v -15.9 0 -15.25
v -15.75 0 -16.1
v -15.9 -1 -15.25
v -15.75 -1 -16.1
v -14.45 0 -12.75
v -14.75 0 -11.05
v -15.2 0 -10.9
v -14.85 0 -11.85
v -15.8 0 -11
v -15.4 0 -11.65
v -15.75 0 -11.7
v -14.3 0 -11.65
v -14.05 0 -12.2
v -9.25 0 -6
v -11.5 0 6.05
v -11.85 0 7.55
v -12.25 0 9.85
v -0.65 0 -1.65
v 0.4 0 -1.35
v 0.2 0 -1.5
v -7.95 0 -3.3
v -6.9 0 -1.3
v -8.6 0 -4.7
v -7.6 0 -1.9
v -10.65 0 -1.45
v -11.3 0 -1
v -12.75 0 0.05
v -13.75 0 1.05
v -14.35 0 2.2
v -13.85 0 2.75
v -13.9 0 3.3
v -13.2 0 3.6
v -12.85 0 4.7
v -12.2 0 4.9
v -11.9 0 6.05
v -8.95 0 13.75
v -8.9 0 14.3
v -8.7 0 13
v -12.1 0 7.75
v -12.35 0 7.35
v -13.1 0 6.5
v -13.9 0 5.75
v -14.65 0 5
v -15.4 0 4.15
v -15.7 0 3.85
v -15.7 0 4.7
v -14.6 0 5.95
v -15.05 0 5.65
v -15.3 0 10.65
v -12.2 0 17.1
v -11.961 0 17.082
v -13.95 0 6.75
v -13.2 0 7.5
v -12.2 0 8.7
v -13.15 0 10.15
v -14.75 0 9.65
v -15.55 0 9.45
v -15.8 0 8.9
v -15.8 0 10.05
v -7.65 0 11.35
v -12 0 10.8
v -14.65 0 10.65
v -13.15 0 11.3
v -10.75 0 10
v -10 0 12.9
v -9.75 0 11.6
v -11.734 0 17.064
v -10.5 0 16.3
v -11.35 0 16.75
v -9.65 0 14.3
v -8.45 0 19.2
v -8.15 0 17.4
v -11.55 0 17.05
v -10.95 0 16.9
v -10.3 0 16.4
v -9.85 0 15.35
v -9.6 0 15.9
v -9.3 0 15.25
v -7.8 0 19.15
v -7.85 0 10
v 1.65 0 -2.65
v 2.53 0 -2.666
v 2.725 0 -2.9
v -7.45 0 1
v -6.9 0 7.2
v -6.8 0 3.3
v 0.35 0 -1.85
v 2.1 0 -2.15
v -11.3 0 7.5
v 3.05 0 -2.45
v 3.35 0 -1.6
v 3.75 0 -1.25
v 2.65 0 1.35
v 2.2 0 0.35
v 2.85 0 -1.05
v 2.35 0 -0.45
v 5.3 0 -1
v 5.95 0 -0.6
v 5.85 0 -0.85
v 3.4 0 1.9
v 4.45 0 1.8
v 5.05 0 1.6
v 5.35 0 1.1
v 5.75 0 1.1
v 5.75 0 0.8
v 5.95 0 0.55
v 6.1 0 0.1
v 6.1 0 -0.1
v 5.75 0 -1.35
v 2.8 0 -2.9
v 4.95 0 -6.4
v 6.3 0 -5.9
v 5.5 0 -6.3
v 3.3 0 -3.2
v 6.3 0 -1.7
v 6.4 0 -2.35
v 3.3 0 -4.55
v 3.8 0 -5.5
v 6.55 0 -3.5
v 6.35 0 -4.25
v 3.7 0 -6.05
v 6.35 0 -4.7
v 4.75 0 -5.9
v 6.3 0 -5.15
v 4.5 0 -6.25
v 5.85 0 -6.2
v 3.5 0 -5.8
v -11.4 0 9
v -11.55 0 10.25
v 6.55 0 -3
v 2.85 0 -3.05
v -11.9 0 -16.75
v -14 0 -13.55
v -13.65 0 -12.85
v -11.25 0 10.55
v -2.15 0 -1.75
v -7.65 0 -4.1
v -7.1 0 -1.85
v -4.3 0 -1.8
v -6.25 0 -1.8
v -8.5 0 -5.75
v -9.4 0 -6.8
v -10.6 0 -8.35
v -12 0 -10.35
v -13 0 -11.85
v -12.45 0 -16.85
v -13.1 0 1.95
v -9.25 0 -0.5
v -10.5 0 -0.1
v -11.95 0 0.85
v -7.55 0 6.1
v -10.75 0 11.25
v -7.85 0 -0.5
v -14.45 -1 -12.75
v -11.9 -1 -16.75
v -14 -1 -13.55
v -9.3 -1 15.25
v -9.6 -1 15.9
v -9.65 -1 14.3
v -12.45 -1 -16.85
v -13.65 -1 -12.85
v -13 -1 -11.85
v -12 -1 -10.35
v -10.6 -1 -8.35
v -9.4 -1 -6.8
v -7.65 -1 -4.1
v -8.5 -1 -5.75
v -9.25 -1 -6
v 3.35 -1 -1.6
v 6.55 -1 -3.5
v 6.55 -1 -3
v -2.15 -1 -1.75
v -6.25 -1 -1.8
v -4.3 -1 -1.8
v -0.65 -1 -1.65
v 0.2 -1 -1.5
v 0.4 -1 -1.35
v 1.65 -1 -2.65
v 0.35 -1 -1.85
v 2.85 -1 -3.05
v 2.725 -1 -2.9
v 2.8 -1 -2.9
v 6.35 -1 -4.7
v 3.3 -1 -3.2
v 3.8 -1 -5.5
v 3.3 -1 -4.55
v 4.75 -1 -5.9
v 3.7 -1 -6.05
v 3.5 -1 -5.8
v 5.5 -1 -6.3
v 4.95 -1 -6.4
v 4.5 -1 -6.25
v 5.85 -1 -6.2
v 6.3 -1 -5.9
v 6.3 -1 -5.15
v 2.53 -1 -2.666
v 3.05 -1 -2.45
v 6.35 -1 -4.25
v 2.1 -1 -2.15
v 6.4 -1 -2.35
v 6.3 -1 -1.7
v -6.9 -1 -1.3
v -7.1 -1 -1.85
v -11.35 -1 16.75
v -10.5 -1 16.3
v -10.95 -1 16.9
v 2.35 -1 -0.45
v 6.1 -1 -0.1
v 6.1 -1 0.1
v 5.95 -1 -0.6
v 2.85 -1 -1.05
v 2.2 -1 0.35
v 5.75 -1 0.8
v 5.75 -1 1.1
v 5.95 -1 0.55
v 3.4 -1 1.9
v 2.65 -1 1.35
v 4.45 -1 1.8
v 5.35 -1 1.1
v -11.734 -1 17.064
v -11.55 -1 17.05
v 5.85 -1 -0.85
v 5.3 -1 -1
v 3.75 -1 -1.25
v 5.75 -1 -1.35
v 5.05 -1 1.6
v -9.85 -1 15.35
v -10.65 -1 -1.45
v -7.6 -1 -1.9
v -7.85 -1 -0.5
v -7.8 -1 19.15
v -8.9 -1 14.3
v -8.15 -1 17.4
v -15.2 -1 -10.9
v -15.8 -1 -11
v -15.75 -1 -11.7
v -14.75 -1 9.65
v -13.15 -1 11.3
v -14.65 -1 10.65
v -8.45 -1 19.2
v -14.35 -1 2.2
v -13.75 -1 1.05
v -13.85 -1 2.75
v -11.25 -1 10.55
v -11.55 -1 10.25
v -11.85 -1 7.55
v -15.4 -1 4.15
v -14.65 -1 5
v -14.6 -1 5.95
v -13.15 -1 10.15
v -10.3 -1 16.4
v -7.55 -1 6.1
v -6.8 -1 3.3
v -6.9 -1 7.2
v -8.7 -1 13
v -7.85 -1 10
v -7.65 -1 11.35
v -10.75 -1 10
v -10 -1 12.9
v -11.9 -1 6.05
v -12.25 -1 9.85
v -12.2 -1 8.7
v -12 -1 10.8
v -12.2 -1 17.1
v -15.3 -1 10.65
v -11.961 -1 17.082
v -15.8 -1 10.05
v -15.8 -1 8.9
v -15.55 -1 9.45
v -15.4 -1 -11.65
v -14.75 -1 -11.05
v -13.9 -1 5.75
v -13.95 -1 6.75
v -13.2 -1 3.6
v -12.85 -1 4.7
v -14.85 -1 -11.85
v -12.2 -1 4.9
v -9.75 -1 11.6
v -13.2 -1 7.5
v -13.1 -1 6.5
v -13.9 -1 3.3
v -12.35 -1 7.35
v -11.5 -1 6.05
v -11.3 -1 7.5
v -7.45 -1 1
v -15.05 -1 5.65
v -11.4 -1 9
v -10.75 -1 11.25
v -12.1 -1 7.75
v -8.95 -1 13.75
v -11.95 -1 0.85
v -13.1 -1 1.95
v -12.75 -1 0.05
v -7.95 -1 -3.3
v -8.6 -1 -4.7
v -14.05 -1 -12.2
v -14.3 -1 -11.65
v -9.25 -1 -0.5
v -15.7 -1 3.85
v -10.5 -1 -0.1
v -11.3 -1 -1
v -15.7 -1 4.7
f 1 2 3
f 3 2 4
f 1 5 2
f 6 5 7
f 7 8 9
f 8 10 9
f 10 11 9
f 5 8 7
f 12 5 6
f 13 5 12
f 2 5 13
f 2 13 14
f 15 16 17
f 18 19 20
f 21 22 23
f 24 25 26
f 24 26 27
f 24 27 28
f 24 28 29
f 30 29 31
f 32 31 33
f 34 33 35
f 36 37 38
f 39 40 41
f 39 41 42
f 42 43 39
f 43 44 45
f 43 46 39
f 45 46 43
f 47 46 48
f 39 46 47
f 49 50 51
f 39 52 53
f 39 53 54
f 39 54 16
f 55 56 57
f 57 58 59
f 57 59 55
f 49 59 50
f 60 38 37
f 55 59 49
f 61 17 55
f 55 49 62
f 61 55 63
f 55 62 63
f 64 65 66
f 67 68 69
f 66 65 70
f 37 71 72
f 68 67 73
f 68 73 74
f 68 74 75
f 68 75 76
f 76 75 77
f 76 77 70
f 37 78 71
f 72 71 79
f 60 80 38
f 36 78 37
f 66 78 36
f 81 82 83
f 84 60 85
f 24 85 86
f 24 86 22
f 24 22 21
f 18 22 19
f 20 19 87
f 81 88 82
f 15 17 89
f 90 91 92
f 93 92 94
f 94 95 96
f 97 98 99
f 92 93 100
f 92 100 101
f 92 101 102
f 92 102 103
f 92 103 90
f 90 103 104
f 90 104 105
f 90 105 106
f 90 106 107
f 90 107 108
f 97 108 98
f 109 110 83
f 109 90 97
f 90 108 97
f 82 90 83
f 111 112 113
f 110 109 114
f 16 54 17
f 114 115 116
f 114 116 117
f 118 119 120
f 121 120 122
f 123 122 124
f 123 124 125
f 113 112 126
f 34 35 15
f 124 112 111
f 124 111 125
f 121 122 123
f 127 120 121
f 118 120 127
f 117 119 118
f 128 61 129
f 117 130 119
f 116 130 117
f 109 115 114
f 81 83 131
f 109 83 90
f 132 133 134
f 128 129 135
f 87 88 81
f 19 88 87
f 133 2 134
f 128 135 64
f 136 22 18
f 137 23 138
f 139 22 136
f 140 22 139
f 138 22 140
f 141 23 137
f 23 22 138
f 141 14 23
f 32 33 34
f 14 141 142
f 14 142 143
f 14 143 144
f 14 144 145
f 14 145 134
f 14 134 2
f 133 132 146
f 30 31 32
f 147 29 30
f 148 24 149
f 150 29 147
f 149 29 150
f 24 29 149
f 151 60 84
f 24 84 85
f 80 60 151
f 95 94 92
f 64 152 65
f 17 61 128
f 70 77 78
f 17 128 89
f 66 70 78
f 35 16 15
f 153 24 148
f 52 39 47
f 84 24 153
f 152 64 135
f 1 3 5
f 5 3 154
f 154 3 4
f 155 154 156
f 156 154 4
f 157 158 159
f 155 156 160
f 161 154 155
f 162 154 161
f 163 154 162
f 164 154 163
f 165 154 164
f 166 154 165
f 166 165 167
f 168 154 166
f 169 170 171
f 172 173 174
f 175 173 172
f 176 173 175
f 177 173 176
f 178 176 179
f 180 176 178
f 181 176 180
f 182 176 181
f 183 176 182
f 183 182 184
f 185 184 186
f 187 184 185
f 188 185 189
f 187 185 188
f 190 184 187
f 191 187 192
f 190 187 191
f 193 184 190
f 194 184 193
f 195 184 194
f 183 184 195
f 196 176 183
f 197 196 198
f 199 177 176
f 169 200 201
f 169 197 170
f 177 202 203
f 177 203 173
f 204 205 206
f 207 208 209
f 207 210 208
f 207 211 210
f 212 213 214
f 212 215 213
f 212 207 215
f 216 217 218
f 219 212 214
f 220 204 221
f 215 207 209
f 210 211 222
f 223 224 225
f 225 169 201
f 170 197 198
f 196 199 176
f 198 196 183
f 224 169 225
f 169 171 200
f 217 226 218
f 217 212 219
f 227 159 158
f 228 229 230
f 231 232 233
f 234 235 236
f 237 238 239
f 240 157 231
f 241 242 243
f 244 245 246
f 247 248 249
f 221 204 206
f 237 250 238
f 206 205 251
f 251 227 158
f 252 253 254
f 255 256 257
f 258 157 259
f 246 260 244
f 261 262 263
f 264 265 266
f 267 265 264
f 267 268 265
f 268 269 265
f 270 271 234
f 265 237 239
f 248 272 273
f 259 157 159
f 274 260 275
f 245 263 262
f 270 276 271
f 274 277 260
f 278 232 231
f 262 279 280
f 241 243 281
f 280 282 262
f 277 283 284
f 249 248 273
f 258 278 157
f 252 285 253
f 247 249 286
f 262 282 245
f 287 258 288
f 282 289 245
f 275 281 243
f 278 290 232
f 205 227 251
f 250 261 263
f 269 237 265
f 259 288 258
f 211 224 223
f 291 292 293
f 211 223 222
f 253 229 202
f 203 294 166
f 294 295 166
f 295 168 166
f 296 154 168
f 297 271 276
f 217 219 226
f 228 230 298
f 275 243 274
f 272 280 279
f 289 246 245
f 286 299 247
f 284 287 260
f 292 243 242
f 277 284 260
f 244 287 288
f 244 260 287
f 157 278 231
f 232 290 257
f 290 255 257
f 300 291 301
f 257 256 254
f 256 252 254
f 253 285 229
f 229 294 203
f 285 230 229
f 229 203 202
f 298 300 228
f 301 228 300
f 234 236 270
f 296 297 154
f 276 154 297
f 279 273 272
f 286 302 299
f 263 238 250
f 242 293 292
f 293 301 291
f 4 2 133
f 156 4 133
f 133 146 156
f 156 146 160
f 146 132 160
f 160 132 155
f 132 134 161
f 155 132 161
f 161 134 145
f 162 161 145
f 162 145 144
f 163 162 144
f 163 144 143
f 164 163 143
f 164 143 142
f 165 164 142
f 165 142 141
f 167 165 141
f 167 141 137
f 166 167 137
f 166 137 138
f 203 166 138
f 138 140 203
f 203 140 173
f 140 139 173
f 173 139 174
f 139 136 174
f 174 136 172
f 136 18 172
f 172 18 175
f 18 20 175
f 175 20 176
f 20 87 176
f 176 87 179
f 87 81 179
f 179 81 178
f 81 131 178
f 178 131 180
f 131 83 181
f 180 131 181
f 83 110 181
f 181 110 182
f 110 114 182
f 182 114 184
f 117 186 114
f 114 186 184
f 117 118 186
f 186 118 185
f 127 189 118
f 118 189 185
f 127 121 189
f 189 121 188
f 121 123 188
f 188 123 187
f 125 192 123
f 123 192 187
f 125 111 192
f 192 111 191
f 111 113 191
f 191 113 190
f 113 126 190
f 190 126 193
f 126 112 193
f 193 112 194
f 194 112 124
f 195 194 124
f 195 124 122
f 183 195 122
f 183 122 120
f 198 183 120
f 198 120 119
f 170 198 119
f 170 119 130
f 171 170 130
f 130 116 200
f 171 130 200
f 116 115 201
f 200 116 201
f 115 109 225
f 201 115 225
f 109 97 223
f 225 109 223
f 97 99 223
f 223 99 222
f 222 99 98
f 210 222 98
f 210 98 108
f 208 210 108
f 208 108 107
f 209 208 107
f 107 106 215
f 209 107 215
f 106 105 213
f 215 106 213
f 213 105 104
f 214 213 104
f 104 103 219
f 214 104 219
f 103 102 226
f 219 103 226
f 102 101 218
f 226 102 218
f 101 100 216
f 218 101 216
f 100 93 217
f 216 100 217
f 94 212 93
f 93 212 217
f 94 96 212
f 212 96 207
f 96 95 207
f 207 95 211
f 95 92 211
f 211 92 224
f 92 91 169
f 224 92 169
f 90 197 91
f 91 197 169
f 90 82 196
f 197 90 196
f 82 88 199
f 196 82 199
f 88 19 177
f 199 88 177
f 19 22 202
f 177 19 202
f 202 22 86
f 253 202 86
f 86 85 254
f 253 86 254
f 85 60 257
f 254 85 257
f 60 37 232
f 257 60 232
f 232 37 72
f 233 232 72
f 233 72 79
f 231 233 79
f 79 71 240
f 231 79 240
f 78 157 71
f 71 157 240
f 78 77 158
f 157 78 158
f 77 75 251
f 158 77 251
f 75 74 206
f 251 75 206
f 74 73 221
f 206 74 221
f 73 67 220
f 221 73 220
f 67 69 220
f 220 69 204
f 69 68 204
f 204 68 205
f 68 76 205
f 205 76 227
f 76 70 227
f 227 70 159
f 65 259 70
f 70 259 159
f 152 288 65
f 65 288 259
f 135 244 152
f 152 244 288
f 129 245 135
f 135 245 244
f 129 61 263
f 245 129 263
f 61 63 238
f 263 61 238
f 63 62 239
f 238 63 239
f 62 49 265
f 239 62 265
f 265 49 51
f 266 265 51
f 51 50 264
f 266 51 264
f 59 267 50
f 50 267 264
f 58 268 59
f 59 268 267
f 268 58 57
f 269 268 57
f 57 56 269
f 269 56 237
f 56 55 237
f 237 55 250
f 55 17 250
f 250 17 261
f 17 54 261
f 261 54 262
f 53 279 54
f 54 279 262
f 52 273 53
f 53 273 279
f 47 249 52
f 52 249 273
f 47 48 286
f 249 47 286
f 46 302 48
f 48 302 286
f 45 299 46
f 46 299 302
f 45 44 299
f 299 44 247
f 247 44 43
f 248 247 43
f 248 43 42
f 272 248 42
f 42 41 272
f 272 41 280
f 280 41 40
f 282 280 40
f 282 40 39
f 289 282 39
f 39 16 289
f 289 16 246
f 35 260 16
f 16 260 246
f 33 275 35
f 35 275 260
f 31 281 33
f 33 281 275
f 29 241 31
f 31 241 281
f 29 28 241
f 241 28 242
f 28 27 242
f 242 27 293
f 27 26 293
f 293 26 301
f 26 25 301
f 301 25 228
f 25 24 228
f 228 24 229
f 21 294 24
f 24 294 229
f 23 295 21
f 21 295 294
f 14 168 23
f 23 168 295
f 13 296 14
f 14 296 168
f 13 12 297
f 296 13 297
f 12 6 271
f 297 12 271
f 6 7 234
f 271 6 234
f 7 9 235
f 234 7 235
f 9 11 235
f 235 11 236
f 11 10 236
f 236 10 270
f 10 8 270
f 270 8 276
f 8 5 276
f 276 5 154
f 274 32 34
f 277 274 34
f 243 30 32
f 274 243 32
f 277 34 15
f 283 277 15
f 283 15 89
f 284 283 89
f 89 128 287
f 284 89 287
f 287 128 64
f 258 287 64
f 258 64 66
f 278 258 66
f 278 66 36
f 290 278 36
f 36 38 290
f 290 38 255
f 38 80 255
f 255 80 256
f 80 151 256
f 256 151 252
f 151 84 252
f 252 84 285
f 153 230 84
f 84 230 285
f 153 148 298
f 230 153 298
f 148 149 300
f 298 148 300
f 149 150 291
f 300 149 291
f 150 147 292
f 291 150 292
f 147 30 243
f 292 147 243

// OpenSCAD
// file: pageOne.scad
//start
module  pageOneLines() 
{ 
color  ([1,0.4,0.8]) 
{ 
            polygon(points = [
[-7.80,19.15]
,[-8.15,17.40]
,[-8.90,14.30]
,[-7.65,11.35]
,[-6.90,7.20]
,[-6.80,3.30]
,[-6.90,-1.30]
,[0.40,-1.35]
,[2.10,-2.15]
,[2.85,-3.05]
,[1.65,-2.65]
,[0.35,-1.85]
,[0.20,-1.50]
,[-0.65,-1.65]
,[-2.15,-1.75]
,[-4.30,-1.80]
,[-6.25,-1.80]
,[-7.10,-1.85]
,[-7.65,-4.10]
,[-8.50,-5.75]
,[-9.40,-6.80]
,[-10.60,-8.35]
,[-12.00,-10.35]
,[-13.00,-11.85]
,[-13.65,-12.85]
,[-11.90,-16.75]
,[-12.45,-16.85]
,[-14.00,-13.55]
,[-15.75,-16.10]
,[-15.90,-15.25]
,[-14.45,-12.75]
,[-14.85,-11.85]
,[-15.40,-11.65]
,[-15.75,-11.70]
,[-15.80,-11.00]
,[-15.20,-10.90]
,[-14.75,-11.05]
,[-14.30,-11.65]
,[-14.05,-12.20]
,[-9.25,-6.00]
,[-8.60,-4.70]
,[-7.95,-3.30]
,[-7.60,-1.90]
,[-10.65,-1.45]
,[-11.30,-1.00]
,[-12.75,0.05]
,[-13.75,1.05]
,[-14.35,2.20]
,[-13.90,3.30]
,[-12.85,4.70]
,[-11.90,6.05]
,[-11.85,7.55]
,[-12.10,7.75]
,[-12.35,7.35]
,[-13.10,6.50]
,[-13.90,5.75]
,[-14.65,5.00]
,[-15.40,4.15]
,[-15.70,3.85]
,[-15.70,4.70]
,[-15.05,5.65]
,[-14.60,5.95]
,[-13.95,6.75]
,[-13.20,7.50]
,[-12.20,8.70]
,[-12.25,9.85]
,[-13.15,10.15]
,[-14.75,9.65]
,[-15.55,9.45]
,[-15.80,8.90]
,[-15.80,10.05]
,[-12.20,17.10]
,[-11.55,17.05]
,[-10.95,16.90]
,[-10.30,16.40]
,[-9.60,15.90]
,[-9.30,15.25]
,[-8.45,19.20]
]
,paths = [
[0,1,2,3,4,5,6,7,8,9,10,11,12,13,14,15,16,17,18,19,20,21,22,23,24,25,26,27,28,29,30,31,32,33,34,35,36,37,38,39,40,41,42,43,44,45,46,47,48,49,50,51,52,53,54,55,56,57,58,59,60,61,62,63,64,65,66,67,68,69,70,71,72,73,74,75,76,77]]
            );
}
}
//start
module  pageOneBoy() 
{ 
color  ([0.6,0,1]) 
{ 
            polygon(points = [
[19.95,-11.70]
,[20.55,-11.45]
,[20.85,-10.60]
,[21.25,-10.25]
,[20.35,-10.05]
,[19.85,-9.45]
,[19.70,-8.65]
,[20.15,-7.65]
,[20.90,-7.10]
,[21.95,-7.20]
,[22.55,-7.40]
,[22.85,-7.90]
,[23.25,-7.90]
,[23.25,-8.20]
,[23.45,-8.45]
,[23.60,-8.90]
,[23.60,-9.10]
,[23.45,-9.60]
,[23.35,-9.85]
,[22.80,-10.00]
,[23.25,-10.35]
,[23.80,-10.70]
,[23.90,-11.35]
,[24.05,-12.00]
,[24.05,-12.50]
,[23.85,-13.25]
,[23.85,-13.70]
,[23.80,-14.15]
,[23.80,-14.90]
,[23.35,-15.20]
,[23.00,-15.30]
,[22.45,-15.40]
,[22.00,-15.25]
,[22.25,-14.90]
,[21.20,-15.05]
,[21.00,-14.80]
,[21.30,-14.50]
,[20.80,-13.55]
,[20.80,-12.65]
,[20.80,-12.20]
,[20.30,-11.90]
,[20.10,-11.90]
]
,paths = [
[0,1,2,3,4,5,6,7,8,9,10,11,12,13,14,15,16,17,18,19,20,21,22,23,24,25,26,27,28,29,30,31,32,33,34,35,36,37,38,39,40,41]]
            );
}
}
//start
module  pageOneLinesInverseB() 
{ 
color  ([0.4,0.4,0.4]) 
{ 
            polygon(points = [
[6.10,-1.00]
,[6.20,-2.50]
,[6.00,-3.95]
,[5.30,-5.10]
,[4.30,-6.40]
,[3.65,-7.25]
,[4.40,-8.05]
,[5.55,-9.15]
,[7.00,-10.10]
,[8.25,-10.50]
,[9.65,-10.50]
,[10.05,-9.00]
,[9.95,-3.90]
,[9.65,0.00]
,[8.80,3.00]
,[8.55,3.75]
,[7.75,1.60]
,[6.75,0.00]
]
,paths = [
[0,1,2,3,4,5,6,7,8,9,10,11,12,13,14,15,16,17]]
            );
}
}
//start
module  pageOneLinesInverseT() 
{ 
color  ([0.4,0.4,0.2]) 
{ 
            polygon(points = [
[5.95,0.25]
,[5.50,0.80]
,[4.35,1.30]
,[2.85,0.65]
,[2.20,0.65]
,[5.60,7.20]
,[6.15,6.75]
,[7.00,6.30]
,[7.65,5.35]
,[7.85,4.30]
,[7.50,2.90]
,[6.75,1.25]
,[6.25,0.55]
]
,paths = [
[0,1,2,3,4,5,6,7,8,9,10,11,12]]
            );
}
}
// main file
use <pageOne.scad>;
use <write.scad>;

module innerLines(){
	translate([-17.5,10,0]){
		pageOneLinesInverseT();
		pageOneLinesInverseB();
	}
}


rotate([90,0,0]){

	linear_extrude(height = 1)
	difference(){
		pageOneLines();
		innerLines();
	}

	linear_extrude(height = 1)
	translate([-17.5,9,0])
		pageOneBoy();
}
